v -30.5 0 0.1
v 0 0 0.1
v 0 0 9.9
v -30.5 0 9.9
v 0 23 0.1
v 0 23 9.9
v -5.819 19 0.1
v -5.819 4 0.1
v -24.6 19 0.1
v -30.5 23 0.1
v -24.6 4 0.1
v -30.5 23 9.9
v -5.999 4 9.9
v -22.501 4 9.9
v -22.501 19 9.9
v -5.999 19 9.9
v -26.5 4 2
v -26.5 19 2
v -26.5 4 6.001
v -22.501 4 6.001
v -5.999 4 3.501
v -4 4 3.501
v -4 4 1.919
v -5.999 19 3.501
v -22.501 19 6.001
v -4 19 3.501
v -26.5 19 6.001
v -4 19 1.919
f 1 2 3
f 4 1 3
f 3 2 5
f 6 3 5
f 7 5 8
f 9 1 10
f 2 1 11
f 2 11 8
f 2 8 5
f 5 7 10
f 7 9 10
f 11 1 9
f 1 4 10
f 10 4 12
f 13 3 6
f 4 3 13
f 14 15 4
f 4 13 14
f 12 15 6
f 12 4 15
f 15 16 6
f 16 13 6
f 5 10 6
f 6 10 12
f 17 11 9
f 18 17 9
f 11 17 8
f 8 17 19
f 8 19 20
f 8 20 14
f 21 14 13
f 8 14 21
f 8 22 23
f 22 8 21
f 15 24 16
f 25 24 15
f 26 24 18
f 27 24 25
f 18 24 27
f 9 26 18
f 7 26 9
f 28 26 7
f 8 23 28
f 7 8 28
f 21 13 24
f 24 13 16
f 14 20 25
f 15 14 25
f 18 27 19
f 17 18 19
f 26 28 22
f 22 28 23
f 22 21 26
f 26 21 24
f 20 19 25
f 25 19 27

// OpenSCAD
module keystone()
{
rotate([0,0,90]) {
	difference(){
	  translate([0,0,.1]) cube([23,30.5,9.8]);
	  translate([4,4,0]){
		difference(){
	 	 cube([15,22.5,10]);
	       	 translate([-1,-0.001,3.501]) cube([17,2,6.5]);
	    	 translate([-1,2.5,-3.40970]) rotate([45,0,0]) cube([17,2,6.5]);
		 translate([-1,18.501,6.001]) cube([17,4,4]);
	    	 translate([-1,20.5,0]) rotate([-45,0,0]) cube([17,2,6.5]);
 		 }
		}
    	      }
	}


}

module keystone_mount()
{
	rotate([0,0,0]) keystone();

}


keystone_mount();
